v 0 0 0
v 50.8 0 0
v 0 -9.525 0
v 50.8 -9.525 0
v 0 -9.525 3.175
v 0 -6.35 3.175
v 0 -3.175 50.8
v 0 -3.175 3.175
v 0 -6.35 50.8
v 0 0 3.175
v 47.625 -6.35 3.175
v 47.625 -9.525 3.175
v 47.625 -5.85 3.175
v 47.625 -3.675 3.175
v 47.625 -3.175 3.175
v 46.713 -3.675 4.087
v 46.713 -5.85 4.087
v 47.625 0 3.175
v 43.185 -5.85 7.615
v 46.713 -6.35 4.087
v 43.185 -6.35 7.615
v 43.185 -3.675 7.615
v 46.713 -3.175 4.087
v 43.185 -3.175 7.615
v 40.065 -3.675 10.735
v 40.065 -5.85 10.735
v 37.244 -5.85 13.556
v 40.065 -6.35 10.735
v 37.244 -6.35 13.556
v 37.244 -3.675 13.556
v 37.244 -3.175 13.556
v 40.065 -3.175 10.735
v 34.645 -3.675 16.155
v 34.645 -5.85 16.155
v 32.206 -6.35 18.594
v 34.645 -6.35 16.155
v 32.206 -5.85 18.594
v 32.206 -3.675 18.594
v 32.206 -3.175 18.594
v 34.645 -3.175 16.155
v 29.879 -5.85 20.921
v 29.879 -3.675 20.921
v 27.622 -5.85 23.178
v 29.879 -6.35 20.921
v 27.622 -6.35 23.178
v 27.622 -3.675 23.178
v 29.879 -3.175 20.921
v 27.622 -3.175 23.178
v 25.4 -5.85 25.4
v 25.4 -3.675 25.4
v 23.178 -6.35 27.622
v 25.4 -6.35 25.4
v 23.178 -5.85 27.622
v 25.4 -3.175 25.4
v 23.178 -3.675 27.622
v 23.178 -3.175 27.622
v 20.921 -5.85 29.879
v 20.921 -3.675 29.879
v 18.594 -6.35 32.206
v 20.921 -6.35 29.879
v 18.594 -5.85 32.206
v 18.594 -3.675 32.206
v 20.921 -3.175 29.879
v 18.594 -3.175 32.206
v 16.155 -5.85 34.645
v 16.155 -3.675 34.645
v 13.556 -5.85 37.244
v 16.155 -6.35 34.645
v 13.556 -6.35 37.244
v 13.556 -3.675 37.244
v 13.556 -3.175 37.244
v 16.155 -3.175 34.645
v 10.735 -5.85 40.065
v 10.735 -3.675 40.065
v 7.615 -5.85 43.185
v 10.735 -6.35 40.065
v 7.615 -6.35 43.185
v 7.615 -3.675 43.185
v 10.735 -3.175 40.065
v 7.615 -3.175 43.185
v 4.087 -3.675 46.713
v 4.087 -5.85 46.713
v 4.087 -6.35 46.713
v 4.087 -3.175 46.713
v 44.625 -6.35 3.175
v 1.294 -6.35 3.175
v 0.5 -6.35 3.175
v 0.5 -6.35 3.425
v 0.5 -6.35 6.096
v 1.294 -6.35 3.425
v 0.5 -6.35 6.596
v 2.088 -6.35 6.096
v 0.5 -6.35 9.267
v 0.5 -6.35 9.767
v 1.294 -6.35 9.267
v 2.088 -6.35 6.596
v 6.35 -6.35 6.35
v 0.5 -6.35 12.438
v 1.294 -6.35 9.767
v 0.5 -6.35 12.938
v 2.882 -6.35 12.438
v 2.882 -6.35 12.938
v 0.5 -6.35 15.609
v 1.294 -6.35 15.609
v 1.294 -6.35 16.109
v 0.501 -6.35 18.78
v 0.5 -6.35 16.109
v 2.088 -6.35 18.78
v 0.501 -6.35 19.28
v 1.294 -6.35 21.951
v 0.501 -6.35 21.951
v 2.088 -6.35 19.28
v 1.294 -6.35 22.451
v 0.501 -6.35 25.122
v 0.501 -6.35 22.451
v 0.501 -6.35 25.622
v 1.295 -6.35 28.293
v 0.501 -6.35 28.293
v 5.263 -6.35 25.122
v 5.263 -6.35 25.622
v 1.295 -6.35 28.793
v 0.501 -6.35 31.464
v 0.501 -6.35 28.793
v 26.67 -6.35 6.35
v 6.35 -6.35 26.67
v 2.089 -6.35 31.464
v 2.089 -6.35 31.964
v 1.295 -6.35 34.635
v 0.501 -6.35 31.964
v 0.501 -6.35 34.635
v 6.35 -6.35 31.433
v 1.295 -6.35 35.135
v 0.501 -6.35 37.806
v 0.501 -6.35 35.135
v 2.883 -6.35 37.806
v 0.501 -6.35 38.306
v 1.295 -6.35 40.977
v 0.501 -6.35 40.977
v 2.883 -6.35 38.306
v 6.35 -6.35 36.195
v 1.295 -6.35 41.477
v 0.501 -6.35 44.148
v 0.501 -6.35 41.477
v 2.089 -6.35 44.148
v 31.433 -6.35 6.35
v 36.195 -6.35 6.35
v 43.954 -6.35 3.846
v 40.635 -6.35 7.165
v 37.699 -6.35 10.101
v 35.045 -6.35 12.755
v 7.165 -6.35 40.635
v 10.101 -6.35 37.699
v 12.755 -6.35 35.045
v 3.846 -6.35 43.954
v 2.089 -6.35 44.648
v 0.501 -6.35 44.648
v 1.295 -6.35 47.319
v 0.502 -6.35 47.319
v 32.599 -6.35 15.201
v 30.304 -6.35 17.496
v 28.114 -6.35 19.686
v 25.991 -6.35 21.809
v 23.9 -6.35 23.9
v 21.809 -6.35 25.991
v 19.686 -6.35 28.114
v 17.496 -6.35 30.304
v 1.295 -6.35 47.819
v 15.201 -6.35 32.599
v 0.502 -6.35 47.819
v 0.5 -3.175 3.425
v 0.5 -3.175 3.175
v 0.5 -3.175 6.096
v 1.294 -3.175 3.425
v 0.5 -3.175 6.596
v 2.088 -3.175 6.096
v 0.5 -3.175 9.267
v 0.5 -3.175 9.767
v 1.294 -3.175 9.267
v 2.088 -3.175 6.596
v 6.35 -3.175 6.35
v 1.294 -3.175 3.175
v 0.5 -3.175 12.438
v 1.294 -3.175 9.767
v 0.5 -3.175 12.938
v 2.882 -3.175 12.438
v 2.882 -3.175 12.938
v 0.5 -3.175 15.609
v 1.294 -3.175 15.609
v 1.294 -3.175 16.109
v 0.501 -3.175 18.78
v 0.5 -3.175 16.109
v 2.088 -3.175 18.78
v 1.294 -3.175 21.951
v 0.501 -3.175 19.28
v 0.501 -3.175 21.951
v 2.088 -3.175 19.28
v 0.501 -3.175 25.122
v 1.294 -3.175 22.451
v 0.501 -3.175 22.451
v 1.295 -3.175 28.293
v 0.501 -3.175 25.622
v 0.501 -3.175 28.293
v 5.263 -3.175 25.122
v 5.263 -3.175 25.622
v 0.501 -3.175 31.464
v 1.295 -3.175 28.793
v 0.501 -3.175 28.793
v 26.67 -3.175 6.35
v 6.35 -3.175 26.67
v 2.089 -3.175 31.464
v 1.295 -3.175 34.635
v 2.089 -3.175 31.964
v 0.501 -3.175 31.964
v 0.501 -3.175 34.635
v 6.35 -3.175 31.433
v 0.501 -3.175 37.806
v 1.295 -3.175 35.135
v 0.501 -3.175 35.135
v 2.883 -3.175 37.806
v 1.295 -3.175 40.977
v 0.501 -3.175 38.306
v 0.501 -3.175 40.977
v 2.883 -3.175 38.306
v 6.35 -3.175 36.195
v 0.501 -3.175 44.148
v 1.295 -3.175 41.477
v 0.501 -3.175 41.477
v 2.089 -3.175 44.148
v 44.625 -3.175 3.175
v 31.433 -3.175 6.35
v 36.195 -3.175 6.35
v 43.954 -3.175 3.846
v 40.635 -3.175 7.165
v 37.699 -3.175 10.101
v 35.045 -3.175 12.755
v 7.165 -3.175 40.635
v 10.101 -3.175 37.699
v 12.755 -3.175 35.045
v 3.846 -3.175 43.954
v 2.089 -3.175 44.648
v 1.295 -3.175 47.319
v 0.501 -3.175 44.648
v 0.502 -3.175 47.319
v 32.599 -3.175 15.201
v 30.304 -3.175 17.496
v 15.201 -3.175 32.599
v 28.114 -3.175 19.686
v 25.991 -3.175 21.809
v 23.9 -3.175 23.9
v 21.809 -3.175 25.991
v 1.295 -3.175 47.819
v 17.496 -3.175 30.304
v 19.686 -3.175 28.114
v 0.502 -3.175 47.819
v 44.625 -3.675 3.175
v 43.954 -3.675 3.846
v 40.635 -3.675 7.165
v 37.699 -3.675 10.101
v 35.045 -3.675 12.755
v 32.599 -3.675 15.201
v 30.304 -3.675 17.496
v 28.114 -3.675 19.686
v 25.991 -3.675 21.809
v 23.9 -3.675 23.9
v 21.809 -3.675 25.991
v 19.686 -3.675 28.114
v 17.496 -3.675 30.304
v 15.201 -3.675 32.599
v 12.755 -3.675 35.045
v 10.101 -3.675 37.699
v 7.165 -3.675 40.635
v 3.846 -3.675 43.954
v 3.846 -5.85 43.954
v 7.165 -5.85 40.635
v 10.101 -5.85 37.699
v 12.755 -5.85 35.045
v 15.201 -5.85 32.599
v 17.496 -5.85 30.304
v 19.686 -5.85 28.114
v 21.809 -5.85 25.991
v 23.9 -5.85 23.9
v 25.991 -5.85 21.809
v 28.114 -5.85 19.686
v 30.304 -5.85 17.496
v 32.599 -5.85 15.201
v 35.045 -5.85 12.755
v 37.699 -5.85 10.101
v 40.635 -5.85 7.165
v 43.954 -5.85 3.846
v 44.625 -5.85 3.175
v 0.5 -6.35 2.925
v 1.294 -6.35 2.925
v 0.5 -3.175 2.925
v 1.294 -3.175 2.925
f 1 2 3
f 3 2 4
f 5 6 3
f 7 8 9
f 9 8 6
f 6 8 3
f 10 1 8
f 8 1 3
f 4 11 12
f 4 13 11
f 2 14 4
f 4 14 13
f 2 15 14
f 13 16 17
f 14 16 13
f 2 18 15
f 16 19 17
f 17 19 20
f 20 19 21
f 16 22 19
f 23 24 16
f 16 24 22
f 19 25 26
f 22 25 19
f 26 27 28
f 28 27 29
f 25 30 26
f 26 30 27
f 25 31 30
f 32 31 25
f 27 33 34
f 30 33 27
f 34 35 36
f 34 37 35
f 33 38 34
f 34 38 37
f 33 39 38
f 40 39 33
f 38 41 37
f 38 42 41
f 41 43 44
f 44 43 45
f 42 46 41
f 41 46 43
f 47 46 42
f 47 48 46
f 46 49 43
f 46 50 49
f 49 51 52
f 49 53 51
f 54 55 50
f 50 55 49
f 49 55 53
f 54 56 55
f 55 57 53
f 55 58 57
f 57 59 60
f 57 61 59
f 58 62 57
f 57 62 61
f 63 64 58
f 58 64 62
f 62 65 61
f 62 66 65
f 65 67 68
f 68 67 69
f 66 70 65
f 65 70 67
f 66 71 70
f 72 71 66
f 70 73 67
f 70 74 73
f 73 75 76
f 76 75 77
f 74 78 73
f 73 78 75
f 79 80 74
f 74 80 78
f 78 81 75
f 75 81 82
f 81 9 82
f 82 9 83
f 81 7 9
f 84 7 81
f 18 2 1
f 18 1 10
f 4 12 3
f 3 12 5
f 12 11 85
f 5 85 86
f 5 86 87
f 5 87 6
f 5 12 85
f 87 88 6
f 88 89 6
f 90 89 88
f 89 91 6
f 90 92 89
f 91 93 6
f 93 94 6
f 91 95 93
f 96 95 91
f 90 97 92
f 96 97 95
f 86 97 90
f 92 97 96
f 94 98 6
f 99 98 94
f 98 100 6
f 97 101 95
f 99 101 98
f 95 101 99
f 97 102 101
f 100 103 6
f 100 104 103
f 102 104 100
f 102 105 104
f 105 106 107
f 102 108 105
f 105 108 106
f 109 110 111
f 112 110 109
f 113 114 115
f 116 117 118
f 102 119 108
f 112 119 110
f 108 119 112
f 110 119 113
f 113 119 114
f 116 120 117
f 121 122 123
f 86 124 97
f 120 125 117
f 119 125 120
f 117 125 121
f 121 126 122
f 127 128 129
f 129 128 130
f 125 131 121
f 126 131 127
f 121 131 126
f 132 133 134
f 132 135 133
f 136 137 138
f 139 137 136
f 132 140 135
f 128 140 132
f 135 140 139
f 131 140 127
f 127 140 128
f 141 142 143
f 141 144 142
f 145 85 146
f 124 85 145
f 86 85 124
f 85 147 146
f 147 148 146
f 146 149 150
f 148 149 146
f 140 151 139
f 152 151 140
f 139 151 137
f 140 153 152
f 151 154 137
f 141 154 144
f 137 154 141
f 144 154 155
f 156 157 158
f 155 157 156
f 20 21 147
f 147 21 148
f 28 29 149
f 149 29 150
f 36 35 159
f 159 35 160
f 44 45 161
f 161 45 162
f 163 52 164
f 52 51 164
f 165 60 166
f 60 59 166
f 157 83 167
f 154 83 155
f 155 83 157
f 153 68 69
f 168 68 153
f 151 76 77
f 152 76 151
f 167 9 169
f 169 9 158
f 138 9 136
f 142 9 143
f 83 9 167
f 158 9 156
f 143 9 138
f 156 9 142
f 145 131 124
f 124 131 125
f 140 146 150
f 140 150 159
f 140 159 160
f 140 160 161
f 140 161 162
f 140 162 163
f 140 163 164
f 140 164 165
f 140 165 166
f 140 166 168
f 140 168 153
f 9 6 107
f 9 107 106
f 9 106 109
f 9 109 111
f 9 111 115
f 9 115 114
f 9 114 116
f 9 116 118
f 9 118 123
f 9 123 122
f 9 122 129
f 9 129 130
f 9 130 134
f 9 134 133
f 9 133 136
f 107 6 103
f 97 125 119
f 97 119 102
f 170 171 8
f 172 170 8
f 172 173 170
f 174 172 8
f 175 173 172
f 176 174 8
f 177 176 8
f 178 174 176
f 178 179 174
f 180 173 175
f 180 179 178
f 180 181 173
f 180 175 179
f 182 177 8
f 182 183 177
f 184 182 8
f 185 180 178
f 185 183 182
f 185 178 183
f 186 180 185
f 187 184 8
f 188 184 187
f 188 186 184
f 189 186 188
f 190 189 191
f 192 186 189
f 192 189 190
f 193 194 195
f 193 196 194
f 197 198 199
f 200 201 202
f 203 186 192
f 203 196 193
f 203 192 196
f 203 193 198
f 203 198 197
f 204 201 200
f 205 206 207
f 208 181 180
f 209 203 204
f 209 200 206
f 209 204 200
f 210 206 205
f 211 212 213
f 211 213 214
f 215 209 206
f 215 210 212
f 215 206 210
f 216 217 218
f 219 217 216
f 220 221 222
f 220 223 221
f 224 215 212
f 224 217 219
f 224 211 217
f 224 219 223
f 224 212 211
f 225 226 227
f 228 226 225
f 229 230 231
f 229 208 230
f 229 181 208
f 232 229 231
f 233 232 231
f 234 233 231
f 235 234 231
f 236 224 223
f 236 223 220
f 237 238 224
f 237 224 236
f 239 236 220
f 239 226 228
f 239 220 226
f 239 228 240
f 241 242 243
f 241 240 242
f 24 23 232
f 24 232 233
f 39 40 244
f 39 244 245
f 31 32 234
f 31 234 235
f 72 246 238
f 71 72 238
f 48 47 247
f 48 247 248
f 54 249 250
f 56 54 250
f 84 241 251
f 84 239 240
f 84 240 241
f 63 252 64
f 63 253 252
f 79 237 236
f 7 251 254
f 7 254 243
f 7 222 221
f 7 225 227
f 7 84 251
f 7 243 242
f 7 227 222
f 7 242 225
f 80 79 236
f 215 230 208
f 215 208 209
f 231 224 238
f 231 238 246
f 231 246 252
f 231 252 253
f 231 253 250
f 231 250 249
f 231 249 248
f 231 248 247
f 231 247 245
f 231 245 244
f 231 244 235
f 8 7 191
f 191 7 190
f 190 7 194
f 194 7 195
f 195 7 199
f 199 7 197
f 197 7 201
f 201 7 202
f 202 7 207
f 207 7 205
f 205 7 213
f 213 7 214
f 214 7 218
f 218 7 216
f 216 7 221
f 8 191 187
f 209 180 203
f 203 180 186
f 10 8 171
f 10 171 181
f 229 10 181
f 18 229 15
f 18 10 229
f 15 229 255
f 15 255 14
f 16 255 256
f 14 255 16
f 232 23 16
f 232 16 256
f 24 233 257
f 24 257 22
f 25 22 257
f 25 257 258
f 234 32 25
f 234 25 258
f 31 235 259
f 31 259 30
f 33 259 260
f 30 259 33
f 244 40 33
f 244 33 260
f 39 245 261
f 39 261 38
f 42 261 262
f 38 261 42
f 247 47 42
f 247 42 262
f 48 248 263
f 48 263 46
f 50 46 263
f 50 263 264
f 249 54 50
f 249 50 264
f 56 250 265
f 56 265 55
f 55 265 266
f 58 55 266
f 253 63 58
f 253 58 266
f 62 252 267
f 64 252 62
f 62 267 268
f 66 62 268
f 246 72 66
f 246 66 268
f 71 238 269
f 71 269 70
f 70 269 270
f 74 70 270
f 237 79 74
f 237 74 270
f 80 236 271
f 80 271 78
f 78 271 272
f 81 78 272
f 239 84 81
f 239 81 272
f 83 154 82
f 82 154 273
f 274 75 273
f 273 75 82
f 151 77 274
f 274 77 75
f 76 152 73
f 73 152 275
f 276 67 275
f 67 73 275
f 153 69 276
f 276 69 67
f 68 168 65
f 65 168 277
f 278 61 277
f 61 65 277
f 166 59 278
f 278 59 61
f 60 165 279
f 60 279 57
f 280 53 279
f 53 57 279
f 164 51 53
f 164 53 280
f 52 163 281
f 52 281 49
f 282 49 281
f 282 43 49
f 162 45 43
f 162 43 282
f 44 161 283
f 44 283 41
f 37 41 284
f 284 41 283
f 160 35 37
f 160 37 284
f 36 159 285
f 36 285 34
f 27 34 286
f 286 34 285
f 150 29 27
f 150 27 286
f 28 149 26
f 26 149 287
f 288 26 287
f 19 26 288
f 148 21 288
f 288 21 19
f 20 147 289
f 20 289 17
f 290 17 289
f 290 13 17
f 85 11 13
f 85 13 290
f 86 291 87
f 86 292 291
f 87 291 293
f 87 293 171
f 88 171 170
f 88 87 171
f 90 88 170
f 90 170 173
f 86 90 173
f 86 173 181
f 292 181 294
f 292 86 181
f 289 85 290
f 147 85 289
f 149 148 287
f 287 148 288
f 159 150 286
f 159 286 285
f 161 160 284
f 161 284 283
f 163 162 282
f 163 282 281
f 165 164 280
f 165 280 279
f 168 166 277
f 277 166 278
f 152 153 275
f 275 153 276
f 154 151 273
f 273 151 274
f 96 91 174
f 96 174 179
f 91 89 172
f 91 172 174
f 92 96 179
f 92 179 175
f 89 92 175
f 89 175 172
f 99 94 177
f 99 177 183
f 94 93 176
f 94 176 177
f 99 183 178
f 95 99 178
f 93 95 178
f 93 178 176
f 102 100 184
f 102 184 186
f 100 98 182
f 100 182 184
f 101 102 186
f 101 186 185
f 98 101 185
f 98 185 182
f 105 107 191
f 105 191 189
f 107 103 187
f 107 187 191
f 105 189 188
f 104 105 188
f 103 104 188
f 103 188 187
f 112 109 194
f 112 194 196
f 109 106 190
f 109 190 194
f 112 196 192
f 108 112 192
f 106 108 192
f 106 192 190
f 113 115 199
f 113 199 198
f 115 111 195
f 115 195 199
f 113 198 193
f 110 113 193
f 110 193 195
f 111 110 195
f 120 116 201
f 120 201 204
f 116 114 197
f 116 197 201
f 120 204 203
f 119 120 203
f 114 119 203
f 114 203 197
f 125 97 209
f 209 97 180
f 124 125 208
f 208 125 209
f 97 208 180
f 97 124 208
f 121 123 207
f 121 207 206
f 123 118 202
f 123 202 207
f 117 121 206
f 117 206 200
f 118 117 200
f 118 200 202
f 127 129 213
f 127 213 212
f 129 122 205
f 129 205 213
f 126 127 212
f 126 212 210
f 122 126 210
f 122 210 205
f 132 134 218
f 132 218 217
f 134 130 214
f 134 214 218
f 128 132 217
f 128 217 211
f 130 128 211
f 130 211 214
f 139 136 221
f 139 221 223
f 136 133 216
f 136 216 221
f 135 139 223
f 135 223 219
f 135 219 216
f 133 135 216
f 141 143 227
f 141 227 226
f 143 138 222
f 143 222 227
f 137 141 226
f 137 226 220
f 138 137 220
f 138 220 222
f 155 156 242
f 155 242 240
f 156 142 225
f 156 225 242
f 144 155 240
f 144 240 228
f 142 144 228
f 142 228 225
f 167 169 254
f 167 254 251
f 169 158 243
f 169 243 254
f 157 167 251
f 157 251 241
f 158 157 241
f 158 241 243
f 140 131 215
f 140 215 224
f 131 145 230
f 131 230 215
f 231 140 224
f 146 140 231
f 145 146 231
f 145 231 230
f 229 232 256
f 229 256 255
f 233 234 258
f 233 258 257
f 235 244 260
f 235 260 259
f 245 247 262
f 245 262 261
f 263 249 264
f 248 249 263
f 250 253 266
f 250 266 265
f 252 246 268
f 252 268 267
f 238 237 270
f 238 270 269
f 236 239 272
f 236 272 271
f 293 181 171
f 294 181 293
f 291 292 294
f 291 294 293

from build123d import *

# Parameters (mm, degrees)
PAD_DEPTH       = 9.525
SKETCH001_W     = 50.8
SKETCH001_H     = 50.8
POCKET_DEPTH    = 3.175
SKETCH002_W     = 50.8
SKETCH002_H     = 50.8
POCKET001_DEPTH = 3.175
POCKET002_DEPTH = 3.175
SKETCH004_W     = 0.79375
SKETCH004_H     = 0.5
SKETCH004_W_2   = 1.5875
SKETCH004_W_3   = 2.38125
SKETCH004_W_4   = 4.7625
POCKET003_DEPTH = 3.175
POCKET004_DEPTH = 0.5
POCKET005_DEPTH = 0.5


with BuildPart() as part:
    # Sketch → Pad (new body)
    with BuildSketch(Plane.XZ):
        Polygon((0, 0), (50.8, 0), (0, 50.8), align=None)
    extrude(amount=PAD_DEPTH)

    # Sketch001 (on Face5 of Pad) → Pocket (cut)
    with BuildSketch(Plane.XZ.offset(9.525)):
        with Locations((25.4, 28.575)):
            Rectangle(SKETCH001_W, SKETCH001_H)
    extrude(amount=-POCKET_DEPTH, mode=Mode.SUBTRACT)

    # Sketch002 (on Face4 of Pocket) → Pocket001 (cut)
    with BuildSketch(Plane(origin=(0, 0, 0), x_dir=(1, 0, 0), z_dir=(0, 1, 0))):
        with Locations((25.4, -28.575)):
            Rectangle(SKETCH002_W, SKETCH002_H)
    extrude(amount=-POCKET001_DEPTH, mode=Mode.SUBTRACT)

    # Sketch003 (on Face7 of Pocket001) → Pocket002 (cut)
    with BuildSketch(Plane.XZ.offset(6.35)):
        Polygon((6.35, 6.35), (26.67, 6.35), (6.35, 26.67), align=None)
        Polygon((6.35, 31.4325), (6.35, 36.195), (36.195, 6.35), (31.4325, 6.35), align=None)
    extrude(amount=-POCKET002_DEPTH, mode=Mode.SUBTRACT)

    # Sketch004 (on Face7 of Pocket002) → Pocket003 (cut)
    with BuildSketch(Plane.XZ.offset(6.35)):
        with Locations((0.896875, 3.175)):
            Rectangle(SKETCH004_W, SKETCH004_H)
        with Locations((1.293865, 6.346028)):
            Rectangle(SKETCH004_W_2, SKETCH004_H)
        with Locations((0.897105, 9.517056)):
            Rectangle(SKETCH004_W, SKETCH004_H)
        with Locations((1.69097, 12.688084)):
            Rectangle(SKETCH004_W_3, SKETCH004_H)
        with Locations((0.897335, 15.859112)):
            Rectangle(SKETCH004_W, SKETCH004_H)
        with Locations((1.294325, 19.03014)):
            Rectangle(SKETCH004_W_2, SKETCH004_H)
        with Locations((0.897565, 22.201168)):
            Rectangle(SKETCH004_W, SKETCH004_H)
        with Locations((2.882055, 25.372196)):
            Rectangle(SKETCH004_W_4, SKETCH004_H)
        with Locations((0.897795, 28.543224)):
            Rectangle(SKETCH004_W, SKETCH004_H)
        with Locations((1.294785, 31.714252)):
            Rectangle(SKETCH004_W_2, SKETCH004_H)
        with Locations((0.898025, 34.88528)):
            Rectangle(SKETCH004_W, SKETCH004_H)
        with Locations((1.69189, 38.056308)):
            Rectangle(SKETCH004_W_3, SKETCH004_H)
        with Locations((0.898255, 41.227336)):
            Rectangle(SKETCH004_W, SKETCH004_H)
        with Locations((1.295245, 44.398364)):
            Rectangle(SKETCH004_W_2, SKETCH004_H)
        with Locations((0.898485, 47.569392)):
            Rectangle(SKETCH004_W, SKETCH004_H)
    extrude(amount=-POCKET003_DEPTH, mode=Mode.SUBTRACT)

    # Sketch005 (on Face7 of Pocket003) → Pocket004 (cut)
    with BuildSketch(Plane.XZ.offset(6.35)):
        Polygon((43.954481, 3.845519), (46.713131, 4.086869), (47.625, 3.175), (44.625, 3.175), align=None)
        Polygon((40.63496, 7.16504), (43.185271, 7.614729), (40.064697, 10.735303), (37.698671, 10.101329), align=None)
        Polygon((28.114215, 19.685785), (29.878705, 20.921295), (32.205909, 18.594091), (30.303986, 17.496014), align=None)
        Polygon((25.4, 25.4), (27.622212, 23.177788), (25.990979, 21.809021), (23.9, 23.9), align=None)
        Polygon((23.177788, 27.622212), (21.809021, 25.990979), (19.685785, 28.114215), (20.921295, 29.878705), align=None)
        Polygon((15.201111, 32.598889), (17.496014, 30.303986), (18.594091, 32.205909), (16.155156, 34.644844), align=None)
        Polygon((13.555785, 37.244215), (10.735303, 40.064697), (10.101329, 37.698671), (12.755247, 35.044753), align=None)
        Polygon((7.614729, 43.185271), (4.086869, 46.713131), (3.845519, 43.954481), (7.16504, 40.63496), align=None)
        Polygon((32.598889, 15.201111), (34.644844, 16.155156), (37.244215, 13.555785), (35.044753, 12.755247), align=None)
    extrude(amount=-POCKET004_DEPTH, mode=Mode.SUBTRACT)

    # Sketch006 → Pocket005 (cut)
    with BuildSketch(Plane(origin=(0, -3.175, 0), x_dir=(1, 0, 0), z_dir=(0, 1, 0))):
        Polygon((43.185271, -7.614729), (40.064697, -10.735303), (37.698671, -10.101329), (40.63496, -7.16504), align=None)
        Polygon((37.244215, -13.555785), (34.644844, -16.155156), (32.598889, -15.201111), (35.044753, -12.755247), align=None)
        Polygon((32.205909, -18.594091), (29.878705, -20.921295), (28.114215, -19.685785), (30.303986, -17.496014), align=None)
        Polygon((27.622212, -23.177788), (25.4, -25.4), (23.9, -23.9), (25.990979, -21.809021), align=None)
        Polygon((23.177788, -27.622212), (20.921295, -29.878705), (19.685785, -28.114215), (21.809021, -25.990979), align=None)
        Polygon((17.496014, -30.303986), (18.594091, -32.205909), (16.155156, -34.644844), (15.201111, -32.598889), align=None)
        Polygon((13.555785, -37.244215), (10.735303, -40.064697), (10.101329, -37.698671), (12.755247, -35.044753), align=None)
        Polygon((7.614729, -43.185271), (4.086869, -46.713131), (3.845519, -43.954481), (7.16504, -40.63496), align=None)
        Polygon((46.713131, -4.086869), (43.954481, -3.845519), (44.625, -3.175), (47.625, -3.175), align=None)
    extrude(amount=-POCKET005_DEPTH, mode=Mode.SUBTRACT)


solid = part.part
